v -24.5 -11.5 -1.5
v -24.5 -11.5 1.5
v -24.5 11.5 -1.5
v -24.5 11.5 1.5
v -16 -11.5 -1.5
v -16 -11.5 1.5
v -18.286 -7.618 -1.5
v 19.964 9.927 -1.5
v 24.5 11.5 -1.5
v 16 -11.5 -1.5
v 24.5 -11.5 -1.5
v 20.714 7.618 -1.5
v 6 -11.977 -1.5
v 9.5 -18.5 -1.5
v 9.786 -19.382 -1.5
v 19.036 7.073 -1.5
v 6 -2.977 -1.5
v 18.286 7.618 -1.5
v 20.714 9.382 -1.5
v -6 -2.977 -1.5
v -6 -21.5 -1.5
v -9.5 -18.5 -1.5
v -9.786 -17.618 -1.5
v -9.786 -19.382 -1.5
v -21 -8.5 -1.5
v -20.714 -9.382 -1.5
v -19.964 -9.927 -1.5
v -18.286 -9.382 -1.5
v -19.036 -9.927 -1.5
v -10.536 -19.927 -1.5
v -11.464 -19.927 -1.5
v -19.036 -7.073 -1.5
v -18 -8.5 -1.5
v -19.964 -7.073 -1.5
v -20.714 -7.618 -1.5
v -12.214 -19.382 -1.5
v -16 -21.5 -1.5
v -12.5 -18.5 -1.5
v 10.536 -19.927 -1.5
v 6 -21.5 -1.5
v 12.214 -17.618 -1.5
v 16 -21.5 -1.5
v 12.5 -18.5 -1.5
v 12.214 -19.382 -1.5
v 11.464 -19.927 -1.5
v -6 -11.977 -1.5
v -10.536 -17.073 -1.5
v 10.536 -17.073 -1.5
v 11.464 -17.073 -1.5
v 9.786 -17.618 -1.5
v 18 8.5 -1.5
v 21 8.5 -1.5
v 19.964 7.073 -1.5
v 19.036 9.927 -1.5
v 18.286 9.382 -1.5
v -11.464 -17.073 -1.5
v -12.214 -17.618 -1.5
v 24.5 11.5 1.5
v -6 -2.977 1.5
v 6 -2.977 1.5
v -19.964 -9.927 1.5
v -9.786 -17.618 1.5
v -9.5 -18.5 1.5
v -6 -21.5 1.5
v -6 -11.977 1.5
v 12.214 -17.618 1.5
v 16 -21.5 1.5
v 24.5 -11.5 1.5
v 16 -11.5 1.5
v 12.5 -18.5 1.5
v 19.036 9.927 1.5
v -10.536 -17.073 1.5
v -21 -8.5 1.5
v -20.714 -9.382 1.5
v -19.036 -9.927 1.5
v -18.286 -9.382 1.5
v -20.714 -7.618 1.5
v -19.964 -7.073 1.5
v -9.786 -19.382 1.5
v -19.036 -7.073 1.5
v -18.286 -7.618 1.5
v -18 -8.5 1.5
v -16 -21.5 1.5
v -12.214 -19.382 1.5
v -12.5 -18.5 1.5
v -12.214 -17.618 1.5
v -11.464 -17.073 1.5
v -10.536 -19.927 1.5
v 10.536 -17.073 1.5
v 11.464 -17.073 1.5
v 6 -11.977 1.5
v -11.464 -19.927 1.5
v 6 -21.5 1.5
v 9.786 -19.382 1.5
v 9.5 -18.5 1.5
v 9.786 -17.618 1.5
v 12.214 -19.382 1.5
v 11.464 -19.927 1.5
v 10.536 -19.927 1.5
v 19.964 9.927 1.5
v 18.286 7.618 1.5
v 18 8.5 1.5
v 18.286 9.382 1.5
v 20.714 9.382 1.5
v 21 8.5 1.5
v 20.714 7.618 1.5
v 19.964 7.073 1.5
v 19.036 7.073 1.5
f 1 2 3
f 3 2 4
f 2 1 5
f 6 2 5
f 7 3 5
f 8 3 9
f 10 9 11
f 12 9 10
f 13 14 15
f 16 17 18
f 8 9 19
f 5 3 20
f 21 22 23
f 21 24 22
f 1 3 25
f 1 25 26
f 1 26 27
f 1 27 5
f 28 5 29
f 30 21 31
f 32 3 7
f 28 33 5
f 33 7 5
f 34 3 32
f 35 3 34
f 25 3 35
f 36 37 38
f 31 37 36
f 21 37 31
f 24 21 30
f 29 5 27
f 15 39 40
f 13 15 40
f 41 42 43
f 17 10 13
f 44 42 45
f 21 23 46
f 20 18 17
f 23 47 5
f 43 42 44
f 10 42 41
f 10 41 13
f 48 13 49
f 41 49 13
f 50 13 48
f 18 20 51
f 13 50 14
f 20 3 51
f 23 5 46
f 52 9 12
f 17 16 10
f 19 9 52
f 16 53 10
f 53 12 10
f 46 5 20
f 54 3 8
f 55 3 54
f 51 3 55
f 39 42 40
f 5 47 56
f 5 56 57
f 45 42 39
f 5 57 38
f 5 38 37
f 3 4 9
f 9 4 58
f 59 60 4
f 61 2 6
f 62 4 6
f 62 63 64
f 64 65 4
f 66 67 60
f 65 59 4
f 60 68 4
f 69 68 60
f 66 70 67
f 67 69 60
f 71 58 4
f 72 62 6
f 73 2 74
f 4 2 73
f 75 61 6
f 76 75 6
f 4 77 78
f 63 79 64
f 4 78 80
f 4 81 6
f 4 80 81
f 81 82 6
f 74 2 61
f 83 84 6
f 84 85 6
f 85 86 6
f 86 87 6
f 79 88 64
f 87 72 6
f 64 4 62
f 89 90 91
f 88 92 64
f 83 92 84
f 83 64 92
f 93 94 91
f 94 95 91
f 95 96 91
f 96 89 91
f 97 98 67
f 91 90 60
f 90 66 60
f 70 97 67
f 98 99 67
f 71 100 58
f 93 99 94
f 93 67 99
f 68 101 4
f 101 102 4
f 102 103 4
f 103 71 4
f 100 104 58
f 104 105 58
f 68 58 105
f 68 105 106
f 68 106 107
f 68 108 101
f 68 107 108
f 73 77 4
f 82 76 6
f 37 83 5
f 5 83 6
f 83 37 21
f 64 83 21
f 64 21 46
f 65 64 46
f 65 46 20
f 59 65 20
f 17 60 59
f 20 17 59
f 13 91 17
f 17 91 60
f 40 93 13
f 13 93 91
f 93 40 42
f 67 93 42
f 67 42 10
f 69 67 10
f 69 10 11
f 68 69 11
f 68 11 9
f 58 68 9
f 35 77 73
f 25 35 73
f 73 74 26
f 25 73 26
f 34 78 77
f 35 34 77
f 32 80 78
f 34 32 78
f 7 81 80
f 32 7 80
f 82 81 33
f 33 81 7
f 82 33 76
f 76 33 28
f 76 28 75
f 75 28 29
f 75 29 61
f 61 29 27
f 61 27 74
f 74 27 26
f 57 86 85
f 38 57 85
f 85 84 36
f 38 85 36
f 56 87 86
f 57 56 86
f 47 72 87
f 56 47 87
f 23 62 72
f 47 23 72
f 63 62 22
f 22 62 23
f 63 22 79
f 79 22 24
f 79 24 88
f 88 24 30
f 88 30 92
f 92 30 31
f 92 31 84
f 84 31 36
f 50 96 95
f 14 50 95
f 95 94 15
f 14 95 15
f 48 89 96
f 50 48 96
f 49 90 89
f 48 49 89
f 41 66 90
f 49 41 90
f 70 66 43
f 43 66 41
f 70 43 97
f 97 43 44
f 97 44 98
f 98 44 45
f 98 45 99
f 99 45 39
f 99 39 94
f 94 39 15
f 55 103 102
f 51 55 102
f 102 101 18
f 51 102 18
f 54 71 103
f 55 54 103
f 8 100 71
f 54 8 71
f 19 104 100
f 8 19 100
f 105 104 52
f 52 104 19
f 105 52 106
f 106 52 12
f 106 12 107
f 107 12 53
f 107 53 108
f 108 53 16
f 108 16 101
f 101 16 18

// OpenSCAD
module module_holder(x, y, z)
{
	//parameters
	padding = 0.1;
	module screw_hole()
	{
		#cylinder(h = (z + padding), r = 1.5, $fn = 10, center = true);
	}

	difference()
	{

		union()
		{
			cube([x, y, z], center = true);
			
			translate([-11, -((y/2) + 5), 0])
			{
				cube([10, 10, z], center = true);
			}

			translate([11, -((y/2) + 5), 0])
			{
				cube([10, 10, z], center = true);
			}
		}

		translate([0, -((y/2) / 1.538), 0])
		{
			#cube([12, 9, (z + padding)], center = true); //VCC trig echo GND will fit this place
		}

		translate([((x/2) - 5), ((y/2) - 3), 0]) //top right
		{
			screw_hole();
		}

		translate([-((x/2) - 5), -((y/2) - 3), 0]) // bottom left
		{
			screw_hole();
		}

		translate([-11, -((y/2) + 7), 0])
		{
			screw_hole();
		}

		translate([11, -((y/2) + 7), 0])
		{
			screw_hole();
		}
	}
}

module_holder(49, 23, 3);
